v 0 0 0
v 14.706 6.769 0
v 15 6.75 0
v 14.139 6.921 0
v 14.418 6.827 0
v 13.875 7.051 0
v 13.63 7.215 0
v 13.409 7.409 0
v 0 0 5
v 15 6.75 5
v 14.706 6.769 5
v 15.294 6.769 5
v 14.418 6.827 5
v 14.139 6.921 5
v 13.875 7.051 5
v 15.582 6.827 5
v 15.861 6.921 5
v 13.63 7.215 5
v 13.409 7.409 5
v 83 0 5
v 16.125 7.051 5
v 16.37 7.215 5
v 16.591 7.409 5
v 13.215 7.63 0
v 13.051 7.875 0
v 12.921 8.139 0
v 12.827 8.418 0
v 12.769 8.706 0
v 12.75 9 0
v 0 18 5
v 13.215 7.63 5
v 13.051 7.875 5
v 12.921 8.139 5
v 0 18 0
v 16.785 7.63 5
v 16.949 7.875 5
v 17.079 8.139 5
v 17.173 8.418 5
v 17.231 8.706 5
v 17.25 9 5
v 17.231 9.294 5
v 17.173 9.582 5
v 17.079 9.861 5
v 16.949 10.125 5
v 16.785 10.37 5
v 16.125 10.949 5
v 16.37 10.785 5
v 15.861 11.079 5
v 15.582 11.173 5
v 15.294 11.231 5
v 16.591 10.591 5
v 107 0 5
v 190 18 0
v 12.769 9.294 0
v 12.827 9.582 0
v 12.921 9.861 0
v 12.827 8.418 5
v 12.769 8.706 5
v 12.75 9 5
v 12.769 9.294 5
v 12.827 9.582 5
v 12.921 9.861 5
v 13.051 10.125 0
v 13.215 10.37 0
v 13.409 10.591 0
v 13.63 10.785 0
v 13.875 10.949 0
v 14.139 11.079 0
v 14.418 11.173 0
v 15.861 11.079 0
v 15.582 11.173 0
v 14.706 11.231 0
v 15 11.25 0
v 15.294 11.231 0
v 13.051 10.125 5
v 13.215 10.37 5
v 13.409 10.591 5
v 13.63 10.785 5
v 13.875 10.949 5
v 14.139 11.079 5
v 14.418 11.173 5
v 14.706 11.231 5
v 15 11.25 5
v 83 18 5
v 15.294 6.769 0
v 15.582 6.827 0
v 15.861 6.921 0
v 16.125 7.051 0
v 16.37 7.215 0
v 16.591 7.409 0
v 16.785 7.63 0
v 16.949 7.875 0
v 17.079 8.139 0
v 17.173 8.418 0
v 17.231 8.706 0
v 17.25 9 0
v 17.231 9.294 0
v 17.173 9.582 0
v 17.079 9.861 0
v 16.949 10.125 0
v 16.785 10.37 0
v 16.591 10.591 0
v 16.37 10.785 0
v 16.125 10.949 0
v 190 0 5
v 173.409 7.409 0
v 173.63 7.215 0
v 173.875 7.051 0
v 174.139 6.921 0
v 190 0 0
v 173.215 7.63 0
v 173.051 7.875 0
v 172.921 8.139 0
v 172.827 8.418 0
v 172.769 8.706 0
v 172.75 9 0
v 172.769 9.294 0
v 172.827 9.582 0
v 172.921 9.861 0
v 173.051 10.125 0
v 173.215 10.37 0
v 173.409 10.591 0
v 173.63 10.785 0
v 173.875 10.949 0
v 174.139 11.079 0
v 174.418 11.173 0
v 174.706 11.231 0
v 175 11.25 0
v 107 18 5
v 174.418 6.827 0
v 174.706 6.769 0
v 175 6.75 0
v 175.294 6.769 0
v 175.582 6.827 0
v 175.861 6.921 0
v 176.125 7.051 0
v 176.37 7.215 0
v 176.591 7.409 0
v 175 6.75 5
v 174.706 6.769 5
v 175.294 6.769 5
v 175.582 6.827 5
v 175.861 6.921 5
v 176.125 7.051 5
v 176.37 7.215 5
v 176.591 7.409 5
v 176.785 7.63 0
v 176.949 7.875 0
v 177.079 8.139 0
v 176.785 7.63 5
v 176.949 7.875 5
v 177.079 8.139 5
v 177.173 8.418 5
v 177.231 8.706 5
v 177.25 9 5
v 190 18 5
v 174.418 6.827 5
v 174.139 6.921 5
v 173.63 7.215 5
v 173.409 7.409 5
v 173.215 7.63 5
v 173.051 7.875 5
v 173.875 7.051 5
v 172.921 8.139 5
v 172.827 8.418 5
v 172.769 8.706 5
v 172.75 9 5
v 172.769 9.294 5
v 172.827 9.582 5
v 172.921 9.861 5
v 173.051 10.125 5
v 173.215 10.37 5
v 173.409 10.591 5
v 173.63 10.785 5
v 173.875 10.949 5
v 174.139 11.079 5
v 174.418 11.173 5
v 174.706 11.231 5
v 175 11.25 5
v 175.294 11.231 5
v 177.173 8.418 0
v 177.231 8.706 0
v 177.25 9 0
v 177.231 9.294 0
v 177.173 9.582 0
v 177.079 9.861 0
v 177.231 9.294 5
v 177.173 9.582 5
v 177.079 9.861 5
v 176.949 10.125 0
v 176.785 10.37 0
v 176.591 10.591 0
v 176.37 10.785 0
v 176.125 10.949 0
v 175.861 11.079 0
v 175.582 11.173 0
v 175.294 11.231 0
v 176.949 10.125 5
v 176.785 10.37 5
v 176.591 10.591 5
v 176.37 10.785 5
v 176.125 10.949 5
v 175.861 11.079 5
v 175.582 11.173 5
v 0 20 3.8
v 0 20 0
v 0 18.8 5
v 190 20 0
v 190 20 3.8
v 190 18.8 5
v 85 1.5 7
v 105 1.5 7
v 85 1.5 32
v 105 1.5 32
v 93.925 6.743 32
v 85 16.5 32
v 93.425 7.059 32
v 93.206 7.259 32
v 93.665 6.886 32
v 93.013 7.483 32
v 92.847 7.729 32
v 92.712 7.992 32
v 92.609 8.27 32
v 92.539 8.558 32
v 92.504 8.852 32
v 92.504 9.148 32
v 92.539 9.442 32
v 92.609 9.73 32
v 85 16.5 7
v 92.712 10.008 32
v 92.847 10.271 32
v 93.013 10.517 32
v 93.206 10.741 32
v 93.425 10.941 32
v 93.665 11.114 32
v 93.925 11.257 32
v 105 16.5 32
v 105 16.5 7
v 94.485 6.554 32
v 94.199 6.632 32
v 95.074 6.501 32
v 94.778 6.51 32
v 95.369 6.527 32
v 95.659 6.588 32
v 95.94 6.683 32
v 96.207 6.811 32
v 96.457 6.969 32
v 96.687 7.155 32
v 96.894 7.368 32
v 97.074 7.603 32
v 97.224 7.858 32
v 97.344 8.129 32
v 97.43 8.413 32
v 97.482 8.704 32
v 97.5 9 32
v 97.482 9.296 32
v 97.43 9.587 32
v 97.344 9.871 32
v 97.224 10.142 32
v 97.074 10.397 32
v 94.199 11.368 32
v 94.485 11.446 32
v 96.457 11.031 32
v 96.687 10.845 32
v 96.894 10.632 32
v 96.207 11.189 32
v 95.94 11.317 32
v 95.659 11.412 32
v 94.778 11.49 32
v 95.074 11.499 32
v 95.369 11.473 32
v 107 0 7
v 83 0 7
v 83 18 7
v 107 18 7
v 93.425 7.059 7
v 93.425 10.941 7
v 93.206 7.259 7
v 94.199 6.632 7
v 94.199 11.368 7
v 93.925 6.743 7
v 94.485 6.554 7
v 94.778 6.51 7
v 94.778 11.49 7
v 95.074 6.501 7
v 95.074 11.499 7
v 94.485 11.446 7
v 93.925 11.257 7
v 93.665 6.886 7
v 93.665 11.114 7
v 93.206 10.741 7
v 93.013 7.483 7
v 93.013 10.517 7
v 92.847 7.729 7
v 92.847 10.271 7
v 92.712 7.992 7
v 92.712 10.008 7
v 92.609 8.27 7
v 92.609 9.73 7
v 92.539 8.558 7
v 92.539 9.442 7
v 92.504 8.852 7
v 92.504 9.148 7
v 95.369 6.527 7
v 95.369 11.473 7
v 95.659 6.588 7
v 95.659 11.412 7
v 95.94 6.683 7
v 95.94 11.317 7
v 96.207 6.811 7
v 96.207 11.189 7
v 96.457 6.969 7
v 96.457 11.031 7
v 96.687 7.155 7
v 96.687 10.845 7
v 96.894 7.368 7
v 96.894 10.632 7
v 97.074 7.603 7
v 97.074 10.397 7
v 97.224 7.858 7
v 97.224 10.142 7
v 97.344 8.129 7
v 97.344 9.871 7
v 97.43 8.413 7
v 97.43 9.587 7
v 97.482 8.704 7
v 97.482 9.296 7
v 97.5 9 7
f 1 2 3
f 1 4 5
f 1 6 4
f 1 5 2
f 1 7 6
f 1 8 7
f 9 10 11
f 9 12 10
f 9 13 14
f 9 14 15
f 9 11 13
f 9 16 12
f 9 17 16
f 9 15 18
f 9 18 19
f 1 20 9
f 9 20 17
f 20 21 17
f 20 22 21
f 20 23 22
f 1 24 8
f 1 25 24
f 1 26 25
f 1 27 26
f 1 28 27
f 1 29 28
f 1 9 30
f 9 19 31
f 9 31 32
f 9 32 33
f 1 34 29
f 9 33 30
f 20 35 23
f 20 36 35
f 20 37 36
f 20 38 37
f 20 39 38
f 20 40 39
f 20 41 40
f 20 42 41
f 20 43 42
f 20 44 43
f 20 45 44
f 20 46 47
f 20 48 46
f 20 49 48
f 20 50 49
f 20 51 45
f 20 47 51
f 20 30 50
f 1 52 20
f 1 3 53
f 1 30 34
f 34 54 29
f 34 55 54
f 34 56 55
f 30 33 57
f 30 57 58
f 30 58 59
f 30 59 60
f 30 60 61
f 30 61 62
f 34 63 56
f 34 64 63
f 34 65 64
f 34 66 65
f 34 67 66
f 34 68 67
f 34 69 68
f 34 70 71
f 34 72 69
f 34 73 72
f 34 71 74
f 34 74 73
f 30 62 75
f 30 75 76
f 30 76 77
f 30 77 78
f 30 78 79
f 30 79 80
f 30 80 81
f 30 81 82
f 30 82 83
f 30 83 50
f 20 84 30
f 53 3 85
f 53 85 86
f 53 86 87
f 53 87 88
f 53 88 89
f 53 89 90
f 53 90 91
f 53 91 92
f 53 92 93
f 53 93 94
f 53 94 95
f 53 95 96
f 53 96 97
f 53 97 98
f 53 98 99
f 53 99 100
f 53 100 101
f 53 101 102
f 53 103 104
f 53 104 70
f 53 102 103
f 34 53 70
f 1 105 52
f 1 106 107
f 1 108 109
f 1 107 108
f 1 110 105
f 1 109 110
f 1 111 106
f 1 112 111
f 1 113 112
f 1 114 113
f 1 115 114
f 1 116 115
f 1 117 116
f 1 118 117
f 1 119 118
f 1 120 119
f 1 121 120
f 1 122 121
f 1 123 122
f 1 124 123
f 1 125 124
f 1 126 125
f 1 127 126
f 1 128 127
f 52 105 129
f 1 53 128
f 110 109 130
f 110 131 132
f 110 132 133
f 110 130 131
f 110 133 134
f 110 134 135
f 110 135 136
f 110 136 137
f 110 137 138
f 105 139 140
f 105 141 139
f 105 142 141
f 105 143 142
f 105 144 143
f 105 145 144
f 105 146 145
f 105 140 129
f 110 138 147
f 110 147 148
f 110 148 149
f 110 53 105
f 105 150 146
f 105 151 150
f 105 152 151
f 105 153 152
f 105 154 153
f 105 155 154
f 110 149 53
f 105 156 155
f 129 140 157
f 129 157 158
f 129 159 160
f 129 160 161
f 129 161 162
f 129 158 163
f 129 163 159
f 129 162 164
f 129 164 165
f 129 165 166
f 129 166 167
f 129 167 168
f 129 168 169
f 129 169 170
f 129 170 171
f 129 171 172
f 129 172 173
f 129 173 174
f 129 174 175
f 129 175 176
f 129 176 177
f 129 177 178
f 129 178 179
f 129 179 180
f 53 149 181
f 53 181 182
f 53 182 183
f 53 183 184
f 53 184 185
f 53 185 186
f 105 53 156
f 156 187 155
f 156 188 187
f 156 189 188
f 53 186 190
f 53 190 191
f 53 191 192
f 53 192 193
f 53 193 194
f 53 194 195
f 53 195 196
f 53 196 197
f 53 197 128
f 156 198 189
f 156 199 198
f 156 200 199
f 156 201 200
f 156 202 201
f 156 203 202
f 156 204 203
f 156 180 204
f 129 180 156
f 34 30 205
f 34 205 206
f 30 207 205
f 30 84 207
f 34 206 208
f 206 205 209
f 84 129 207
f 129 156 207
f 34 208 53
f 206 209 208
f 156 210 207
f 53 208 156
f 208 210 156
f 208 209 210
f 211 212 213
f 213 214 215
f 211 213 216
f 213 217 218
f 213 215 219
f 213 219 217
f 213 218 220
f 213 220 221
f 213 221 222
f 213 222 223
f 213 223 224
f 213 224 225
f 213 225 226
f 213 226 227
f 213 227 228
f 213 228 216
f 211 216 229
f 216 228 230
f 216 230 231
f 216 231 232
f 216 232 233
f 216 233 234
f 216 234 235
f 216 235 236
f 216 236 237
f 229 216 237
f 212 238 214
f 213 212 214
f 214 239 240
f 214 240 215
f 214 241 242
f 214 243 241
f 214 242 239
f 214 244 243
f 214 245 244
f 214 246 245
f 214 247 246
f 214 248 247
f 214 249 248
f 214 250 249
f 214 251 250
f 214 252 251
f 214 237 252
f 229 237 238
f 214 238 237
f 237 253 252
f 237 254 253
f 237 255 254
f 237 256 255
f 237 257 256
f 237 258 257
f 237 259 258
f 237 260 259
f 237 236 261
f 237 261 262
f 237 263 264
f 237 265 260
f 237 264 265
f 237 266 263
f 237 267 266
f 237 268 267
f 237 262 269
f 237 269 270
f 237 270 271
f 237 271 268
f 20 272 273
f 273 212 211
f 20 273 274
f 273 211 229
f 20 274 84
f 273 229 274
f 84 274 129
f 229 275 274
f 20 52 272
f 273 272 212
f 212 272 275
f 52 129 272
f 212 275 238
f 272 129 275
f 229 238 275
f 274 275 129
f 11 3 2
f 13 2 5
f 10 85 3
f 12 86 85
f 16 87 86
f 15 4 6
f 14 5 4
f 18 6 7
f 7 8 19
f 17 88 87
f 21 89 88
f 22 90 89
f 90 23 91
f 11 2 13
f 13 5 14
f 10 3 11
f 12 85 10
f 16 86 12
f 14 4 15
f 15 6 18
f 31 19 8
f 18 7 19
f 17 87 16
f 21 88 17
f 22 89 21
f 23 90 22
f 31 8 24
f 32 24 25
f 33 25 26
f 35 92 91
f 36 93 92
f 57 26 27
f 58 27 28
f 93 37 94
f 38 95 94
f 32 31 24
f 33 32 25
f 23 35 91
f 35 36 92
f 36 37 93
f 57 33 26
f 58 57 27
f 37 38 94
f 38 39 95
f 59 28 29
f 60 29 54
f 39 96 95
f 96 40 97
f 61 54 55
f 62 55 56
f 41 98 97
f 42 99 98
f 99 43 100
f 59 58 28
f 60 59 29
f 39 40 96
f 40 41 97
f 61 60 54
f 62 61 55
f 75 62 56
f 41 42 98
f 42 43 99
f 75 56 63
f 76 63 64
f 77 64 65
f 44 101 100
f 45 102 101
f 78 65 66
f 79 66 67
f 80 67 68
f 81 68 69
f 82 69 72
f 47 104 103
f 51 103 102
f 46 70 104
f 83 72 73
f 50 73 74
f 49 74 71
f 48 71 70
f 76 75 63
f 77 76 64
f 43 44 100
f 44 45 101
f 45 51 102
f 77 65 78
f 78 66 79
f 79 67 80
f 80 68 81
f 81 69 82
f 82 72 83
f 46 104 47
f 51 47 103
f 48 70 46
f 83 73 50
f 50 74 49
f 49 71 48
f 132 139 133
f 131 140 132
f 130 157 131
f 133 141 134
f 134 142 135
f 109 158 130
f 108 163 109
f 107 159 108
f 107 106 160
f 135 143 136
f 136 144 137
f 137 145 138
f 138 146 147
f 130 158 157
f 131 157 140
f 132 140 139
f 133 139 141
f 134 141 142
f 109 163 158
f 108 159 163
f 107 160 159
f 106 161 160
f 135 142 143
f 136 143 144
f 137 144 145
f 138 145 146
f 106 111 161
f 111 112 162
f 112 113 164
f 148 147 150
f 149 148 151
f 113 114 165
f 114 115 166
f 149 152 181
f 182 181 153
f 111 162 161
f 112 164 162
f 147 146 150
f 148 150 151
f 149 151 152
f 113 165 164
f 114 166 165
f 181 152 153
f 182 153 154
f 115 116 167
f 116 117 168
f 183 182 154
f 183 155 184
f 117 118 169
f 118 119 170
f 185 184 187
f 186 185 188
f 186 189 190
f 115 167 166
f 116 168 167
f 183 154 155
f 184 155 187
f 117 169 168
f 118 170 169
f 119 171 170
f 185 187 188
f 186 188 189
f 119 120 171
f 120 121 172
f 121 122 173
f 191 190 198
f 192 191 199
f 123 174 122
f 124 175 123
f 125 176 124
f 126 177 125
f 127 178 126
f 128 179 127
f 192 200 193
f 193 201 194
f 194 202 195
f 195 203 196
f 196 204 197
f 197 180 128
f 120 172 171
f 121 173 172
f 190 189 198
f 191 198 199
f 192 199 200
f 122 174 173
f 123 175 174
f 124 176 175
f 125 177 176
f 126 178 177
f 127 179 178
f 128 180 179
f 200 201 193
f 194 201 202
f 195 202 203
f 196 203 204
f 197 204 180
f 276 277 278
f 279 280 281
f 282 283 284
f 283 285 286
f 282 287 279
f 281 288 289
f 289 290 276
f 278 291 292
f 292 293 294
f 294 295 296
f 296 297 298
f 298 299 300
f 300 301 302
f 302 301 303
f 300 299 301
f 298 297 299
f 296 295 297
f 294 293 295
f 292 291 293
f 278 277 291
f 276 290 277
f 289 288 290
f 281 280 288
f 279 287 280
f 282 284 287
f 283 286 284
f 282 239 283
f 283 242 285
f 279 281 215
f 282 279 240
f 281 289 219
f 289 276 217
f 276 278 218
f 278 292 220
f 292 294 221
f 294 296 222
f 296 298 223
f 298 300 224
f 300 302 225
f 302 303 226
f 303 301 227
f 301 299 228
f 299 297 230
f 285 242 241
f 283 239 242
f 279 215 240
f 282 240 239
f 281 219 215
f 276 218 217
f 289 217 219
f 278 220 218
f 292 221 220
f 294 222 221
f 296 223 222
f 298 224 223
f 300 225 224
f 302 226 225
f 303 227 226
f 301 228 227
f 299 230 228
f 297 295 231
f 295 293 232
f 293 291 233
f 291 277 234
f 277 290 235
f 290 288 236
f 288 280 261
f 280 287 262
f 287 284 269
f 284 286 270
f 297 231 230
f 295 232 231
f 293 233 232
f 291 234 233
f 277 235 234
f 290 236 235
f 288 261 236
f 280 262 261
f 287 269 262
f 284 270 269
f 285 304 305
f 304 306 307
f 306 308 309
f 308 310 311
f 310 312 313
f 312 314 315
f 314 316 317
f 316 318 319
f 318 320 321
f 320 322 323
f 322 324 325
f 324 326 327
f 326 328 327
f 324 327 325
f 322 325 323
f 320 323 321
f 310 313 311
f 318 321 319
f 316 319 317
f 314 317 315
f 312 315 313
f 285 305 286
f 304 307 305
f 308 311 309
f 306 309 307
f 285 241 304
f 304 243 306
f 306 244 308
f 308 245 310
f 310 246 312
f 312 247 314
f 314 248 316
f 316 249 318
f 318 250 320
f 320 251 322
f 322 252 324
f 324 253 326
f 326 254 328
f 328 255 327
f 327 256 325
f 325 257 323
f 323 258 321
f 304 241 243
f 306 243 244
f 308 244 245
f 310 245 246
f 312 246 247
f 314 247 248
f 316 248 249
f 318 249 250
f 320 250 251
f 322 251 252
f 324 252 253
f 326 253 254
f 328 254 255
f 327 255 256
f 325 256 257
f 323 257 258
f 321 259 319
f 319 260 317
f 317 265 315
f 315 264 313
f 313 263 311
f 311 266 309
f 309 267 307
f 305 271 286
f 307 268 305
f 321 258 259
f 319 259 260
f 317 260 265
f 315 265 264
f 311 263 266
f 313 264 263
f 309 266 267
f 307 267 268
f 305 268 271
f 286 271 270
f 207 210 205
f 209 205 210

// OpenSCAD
// file: common.scad
// Common parameters for the window-opener brackets.
//
// Units: millimetres. All parts share these values so changes propagate.
// Render with:
//   openscad -o sash-bracket.stl sash-bracket.scad
//   openscad -o frame-bracket.stl frame-bracket.scad

// -------- hole / clearance sizes --------
M4_HOLE      = 4.5;   // self-tapper clearance in PVC
M6_CLEAR     = 6.5;   // clearance for M6 rod-end shank
M6_TAP       = 5.0;   // tap drill for M6 (tap-to-size in post)

// -------- target window --------
// Reference only — used by consumers of these bracket CAD files.
WIN_WIDTH    = 845;
WIN_HEIGHT   = 1325;
D_FROM_HINGE = 120;   // moving-anchor offset from the hinge side

// -------- bracket common --------
BRACKET_WIDTH  = 190;  // along the top rail (X axis in both parts)
PLATE_THK      = 5;    // plate wall thickness
PRINT_CLR      = 0.2;  // generic printer tolerance

// Render resolution — fine enough for holes, cheap enough for iteration.
$fa = 4;
$fs = 0.3;
// main file
// Fixed-end (frame) bracket.
//
// Mounts on the 20 mm strip of frame face between the sash top and the
// ceiling, with VHB tape + 2 M4 self-tappers into the PVC. Arm extends
// into the room and holds an M6 rod-end threaded into its front face.
//
// The top edge of the plate includes a 2 mm lip (`TAB_H`) that sticks up
// past the plate body. At install the bracket is pushed up until the tab
// compresses slightly against the ceiling — this is an install aid and a
// passive peel-resist, not a primary load path (real peel stress is
// ~140 kPa, well inside VHB's capacity).
//
// Print orientation: flat on the bed, back face (the VHB side) down.
// Recommended filament: PETG or ABS. No supports.
//
// Render:   openscad -o frame-bracket.stl frame-bracket.scad

include <common.scad>;

// -------- dimensions --------
PLATE_H          = 18;   // plate height (fits in the 20 mm strip with 2 mm slack)
TAB_H            = 2;    // ceiling-jam lip above the plate body
ARM_L            = 27;   // arm protrusion into the room (Z direction)
ARM_W            = 20;   // arm width along the sash (X direction)
ARM_H            = 15;   // arm height (Y direction)

SCREW_INSET_X    = 15;   // distance from short edge to M4 centre
SCREW_Y          = PLATE_H / 2;  // M4 centred vertically in plate

// M6 rod-end hole is at the end face of the arm, along Z
ROD_END_CX       = BRACKET_WIDTH / 2;
ROD_END_CY       = PLATE_H / 2;

// -------- the part --------
module frame_bracket() {
  difference() {
    union() {
      // Main plate
      cube([BRACKET_WIDTH, PLATE_H, PLATE_THK]);

      // Ceiling-jam tab running the full 190 mm width
      translate([0, PLATE_H, 0])
        cube([BRACKET_WIDTH, TAB_H, PLATE_THK]);

      // Arm extending from the plate front face into the room
      translate([ROD_END_CX - ARM_W / 2, ROD_END_CY - ARM_H / 2, PLATE_THK])
        cube([ARM_W, ARM_H, ARM_L]);

      // Gusset at the base of the arm (strength where arm meets plate)
      translate([ROD_END_CX - (ARM_W + 4) / 2, 0, PLATE_THK])
        cube([ARM_W + 4, PLATE_H, 2]);
    }

    // --- M4 mounting holes (2, at each short edge) ---
    for (x = [SCREW_INSET_X, BRACKET_WIDTH - SCREW_INSET_X])
      translate([x, SCREW_Y, -0.1])
        cylinder(h = PLATE_THK + 0.2, d = M4_HOLE);

    // --- M6 rod-end hole: blind, through the arm end face (Z direction) ---
    translate([ROD_END_CX, ROD_END_CY, PLATE_THK + 2])
      cylinder(h = ARM_L, d = M6_TAP);

    // --- Bevel the tab's top-front edge so it slides in under the ceiling ---
    translate([-0.1, PLATE_H + TAB_H, PLATE_THK])
      rotate([0, 90, 0])
        linear_extrude(BRACKET_WIDTH + 0.2)
          polygon([[0, 0], [1.2, 0], [0, -1.2]]);
  }
}

frame_bracket();
